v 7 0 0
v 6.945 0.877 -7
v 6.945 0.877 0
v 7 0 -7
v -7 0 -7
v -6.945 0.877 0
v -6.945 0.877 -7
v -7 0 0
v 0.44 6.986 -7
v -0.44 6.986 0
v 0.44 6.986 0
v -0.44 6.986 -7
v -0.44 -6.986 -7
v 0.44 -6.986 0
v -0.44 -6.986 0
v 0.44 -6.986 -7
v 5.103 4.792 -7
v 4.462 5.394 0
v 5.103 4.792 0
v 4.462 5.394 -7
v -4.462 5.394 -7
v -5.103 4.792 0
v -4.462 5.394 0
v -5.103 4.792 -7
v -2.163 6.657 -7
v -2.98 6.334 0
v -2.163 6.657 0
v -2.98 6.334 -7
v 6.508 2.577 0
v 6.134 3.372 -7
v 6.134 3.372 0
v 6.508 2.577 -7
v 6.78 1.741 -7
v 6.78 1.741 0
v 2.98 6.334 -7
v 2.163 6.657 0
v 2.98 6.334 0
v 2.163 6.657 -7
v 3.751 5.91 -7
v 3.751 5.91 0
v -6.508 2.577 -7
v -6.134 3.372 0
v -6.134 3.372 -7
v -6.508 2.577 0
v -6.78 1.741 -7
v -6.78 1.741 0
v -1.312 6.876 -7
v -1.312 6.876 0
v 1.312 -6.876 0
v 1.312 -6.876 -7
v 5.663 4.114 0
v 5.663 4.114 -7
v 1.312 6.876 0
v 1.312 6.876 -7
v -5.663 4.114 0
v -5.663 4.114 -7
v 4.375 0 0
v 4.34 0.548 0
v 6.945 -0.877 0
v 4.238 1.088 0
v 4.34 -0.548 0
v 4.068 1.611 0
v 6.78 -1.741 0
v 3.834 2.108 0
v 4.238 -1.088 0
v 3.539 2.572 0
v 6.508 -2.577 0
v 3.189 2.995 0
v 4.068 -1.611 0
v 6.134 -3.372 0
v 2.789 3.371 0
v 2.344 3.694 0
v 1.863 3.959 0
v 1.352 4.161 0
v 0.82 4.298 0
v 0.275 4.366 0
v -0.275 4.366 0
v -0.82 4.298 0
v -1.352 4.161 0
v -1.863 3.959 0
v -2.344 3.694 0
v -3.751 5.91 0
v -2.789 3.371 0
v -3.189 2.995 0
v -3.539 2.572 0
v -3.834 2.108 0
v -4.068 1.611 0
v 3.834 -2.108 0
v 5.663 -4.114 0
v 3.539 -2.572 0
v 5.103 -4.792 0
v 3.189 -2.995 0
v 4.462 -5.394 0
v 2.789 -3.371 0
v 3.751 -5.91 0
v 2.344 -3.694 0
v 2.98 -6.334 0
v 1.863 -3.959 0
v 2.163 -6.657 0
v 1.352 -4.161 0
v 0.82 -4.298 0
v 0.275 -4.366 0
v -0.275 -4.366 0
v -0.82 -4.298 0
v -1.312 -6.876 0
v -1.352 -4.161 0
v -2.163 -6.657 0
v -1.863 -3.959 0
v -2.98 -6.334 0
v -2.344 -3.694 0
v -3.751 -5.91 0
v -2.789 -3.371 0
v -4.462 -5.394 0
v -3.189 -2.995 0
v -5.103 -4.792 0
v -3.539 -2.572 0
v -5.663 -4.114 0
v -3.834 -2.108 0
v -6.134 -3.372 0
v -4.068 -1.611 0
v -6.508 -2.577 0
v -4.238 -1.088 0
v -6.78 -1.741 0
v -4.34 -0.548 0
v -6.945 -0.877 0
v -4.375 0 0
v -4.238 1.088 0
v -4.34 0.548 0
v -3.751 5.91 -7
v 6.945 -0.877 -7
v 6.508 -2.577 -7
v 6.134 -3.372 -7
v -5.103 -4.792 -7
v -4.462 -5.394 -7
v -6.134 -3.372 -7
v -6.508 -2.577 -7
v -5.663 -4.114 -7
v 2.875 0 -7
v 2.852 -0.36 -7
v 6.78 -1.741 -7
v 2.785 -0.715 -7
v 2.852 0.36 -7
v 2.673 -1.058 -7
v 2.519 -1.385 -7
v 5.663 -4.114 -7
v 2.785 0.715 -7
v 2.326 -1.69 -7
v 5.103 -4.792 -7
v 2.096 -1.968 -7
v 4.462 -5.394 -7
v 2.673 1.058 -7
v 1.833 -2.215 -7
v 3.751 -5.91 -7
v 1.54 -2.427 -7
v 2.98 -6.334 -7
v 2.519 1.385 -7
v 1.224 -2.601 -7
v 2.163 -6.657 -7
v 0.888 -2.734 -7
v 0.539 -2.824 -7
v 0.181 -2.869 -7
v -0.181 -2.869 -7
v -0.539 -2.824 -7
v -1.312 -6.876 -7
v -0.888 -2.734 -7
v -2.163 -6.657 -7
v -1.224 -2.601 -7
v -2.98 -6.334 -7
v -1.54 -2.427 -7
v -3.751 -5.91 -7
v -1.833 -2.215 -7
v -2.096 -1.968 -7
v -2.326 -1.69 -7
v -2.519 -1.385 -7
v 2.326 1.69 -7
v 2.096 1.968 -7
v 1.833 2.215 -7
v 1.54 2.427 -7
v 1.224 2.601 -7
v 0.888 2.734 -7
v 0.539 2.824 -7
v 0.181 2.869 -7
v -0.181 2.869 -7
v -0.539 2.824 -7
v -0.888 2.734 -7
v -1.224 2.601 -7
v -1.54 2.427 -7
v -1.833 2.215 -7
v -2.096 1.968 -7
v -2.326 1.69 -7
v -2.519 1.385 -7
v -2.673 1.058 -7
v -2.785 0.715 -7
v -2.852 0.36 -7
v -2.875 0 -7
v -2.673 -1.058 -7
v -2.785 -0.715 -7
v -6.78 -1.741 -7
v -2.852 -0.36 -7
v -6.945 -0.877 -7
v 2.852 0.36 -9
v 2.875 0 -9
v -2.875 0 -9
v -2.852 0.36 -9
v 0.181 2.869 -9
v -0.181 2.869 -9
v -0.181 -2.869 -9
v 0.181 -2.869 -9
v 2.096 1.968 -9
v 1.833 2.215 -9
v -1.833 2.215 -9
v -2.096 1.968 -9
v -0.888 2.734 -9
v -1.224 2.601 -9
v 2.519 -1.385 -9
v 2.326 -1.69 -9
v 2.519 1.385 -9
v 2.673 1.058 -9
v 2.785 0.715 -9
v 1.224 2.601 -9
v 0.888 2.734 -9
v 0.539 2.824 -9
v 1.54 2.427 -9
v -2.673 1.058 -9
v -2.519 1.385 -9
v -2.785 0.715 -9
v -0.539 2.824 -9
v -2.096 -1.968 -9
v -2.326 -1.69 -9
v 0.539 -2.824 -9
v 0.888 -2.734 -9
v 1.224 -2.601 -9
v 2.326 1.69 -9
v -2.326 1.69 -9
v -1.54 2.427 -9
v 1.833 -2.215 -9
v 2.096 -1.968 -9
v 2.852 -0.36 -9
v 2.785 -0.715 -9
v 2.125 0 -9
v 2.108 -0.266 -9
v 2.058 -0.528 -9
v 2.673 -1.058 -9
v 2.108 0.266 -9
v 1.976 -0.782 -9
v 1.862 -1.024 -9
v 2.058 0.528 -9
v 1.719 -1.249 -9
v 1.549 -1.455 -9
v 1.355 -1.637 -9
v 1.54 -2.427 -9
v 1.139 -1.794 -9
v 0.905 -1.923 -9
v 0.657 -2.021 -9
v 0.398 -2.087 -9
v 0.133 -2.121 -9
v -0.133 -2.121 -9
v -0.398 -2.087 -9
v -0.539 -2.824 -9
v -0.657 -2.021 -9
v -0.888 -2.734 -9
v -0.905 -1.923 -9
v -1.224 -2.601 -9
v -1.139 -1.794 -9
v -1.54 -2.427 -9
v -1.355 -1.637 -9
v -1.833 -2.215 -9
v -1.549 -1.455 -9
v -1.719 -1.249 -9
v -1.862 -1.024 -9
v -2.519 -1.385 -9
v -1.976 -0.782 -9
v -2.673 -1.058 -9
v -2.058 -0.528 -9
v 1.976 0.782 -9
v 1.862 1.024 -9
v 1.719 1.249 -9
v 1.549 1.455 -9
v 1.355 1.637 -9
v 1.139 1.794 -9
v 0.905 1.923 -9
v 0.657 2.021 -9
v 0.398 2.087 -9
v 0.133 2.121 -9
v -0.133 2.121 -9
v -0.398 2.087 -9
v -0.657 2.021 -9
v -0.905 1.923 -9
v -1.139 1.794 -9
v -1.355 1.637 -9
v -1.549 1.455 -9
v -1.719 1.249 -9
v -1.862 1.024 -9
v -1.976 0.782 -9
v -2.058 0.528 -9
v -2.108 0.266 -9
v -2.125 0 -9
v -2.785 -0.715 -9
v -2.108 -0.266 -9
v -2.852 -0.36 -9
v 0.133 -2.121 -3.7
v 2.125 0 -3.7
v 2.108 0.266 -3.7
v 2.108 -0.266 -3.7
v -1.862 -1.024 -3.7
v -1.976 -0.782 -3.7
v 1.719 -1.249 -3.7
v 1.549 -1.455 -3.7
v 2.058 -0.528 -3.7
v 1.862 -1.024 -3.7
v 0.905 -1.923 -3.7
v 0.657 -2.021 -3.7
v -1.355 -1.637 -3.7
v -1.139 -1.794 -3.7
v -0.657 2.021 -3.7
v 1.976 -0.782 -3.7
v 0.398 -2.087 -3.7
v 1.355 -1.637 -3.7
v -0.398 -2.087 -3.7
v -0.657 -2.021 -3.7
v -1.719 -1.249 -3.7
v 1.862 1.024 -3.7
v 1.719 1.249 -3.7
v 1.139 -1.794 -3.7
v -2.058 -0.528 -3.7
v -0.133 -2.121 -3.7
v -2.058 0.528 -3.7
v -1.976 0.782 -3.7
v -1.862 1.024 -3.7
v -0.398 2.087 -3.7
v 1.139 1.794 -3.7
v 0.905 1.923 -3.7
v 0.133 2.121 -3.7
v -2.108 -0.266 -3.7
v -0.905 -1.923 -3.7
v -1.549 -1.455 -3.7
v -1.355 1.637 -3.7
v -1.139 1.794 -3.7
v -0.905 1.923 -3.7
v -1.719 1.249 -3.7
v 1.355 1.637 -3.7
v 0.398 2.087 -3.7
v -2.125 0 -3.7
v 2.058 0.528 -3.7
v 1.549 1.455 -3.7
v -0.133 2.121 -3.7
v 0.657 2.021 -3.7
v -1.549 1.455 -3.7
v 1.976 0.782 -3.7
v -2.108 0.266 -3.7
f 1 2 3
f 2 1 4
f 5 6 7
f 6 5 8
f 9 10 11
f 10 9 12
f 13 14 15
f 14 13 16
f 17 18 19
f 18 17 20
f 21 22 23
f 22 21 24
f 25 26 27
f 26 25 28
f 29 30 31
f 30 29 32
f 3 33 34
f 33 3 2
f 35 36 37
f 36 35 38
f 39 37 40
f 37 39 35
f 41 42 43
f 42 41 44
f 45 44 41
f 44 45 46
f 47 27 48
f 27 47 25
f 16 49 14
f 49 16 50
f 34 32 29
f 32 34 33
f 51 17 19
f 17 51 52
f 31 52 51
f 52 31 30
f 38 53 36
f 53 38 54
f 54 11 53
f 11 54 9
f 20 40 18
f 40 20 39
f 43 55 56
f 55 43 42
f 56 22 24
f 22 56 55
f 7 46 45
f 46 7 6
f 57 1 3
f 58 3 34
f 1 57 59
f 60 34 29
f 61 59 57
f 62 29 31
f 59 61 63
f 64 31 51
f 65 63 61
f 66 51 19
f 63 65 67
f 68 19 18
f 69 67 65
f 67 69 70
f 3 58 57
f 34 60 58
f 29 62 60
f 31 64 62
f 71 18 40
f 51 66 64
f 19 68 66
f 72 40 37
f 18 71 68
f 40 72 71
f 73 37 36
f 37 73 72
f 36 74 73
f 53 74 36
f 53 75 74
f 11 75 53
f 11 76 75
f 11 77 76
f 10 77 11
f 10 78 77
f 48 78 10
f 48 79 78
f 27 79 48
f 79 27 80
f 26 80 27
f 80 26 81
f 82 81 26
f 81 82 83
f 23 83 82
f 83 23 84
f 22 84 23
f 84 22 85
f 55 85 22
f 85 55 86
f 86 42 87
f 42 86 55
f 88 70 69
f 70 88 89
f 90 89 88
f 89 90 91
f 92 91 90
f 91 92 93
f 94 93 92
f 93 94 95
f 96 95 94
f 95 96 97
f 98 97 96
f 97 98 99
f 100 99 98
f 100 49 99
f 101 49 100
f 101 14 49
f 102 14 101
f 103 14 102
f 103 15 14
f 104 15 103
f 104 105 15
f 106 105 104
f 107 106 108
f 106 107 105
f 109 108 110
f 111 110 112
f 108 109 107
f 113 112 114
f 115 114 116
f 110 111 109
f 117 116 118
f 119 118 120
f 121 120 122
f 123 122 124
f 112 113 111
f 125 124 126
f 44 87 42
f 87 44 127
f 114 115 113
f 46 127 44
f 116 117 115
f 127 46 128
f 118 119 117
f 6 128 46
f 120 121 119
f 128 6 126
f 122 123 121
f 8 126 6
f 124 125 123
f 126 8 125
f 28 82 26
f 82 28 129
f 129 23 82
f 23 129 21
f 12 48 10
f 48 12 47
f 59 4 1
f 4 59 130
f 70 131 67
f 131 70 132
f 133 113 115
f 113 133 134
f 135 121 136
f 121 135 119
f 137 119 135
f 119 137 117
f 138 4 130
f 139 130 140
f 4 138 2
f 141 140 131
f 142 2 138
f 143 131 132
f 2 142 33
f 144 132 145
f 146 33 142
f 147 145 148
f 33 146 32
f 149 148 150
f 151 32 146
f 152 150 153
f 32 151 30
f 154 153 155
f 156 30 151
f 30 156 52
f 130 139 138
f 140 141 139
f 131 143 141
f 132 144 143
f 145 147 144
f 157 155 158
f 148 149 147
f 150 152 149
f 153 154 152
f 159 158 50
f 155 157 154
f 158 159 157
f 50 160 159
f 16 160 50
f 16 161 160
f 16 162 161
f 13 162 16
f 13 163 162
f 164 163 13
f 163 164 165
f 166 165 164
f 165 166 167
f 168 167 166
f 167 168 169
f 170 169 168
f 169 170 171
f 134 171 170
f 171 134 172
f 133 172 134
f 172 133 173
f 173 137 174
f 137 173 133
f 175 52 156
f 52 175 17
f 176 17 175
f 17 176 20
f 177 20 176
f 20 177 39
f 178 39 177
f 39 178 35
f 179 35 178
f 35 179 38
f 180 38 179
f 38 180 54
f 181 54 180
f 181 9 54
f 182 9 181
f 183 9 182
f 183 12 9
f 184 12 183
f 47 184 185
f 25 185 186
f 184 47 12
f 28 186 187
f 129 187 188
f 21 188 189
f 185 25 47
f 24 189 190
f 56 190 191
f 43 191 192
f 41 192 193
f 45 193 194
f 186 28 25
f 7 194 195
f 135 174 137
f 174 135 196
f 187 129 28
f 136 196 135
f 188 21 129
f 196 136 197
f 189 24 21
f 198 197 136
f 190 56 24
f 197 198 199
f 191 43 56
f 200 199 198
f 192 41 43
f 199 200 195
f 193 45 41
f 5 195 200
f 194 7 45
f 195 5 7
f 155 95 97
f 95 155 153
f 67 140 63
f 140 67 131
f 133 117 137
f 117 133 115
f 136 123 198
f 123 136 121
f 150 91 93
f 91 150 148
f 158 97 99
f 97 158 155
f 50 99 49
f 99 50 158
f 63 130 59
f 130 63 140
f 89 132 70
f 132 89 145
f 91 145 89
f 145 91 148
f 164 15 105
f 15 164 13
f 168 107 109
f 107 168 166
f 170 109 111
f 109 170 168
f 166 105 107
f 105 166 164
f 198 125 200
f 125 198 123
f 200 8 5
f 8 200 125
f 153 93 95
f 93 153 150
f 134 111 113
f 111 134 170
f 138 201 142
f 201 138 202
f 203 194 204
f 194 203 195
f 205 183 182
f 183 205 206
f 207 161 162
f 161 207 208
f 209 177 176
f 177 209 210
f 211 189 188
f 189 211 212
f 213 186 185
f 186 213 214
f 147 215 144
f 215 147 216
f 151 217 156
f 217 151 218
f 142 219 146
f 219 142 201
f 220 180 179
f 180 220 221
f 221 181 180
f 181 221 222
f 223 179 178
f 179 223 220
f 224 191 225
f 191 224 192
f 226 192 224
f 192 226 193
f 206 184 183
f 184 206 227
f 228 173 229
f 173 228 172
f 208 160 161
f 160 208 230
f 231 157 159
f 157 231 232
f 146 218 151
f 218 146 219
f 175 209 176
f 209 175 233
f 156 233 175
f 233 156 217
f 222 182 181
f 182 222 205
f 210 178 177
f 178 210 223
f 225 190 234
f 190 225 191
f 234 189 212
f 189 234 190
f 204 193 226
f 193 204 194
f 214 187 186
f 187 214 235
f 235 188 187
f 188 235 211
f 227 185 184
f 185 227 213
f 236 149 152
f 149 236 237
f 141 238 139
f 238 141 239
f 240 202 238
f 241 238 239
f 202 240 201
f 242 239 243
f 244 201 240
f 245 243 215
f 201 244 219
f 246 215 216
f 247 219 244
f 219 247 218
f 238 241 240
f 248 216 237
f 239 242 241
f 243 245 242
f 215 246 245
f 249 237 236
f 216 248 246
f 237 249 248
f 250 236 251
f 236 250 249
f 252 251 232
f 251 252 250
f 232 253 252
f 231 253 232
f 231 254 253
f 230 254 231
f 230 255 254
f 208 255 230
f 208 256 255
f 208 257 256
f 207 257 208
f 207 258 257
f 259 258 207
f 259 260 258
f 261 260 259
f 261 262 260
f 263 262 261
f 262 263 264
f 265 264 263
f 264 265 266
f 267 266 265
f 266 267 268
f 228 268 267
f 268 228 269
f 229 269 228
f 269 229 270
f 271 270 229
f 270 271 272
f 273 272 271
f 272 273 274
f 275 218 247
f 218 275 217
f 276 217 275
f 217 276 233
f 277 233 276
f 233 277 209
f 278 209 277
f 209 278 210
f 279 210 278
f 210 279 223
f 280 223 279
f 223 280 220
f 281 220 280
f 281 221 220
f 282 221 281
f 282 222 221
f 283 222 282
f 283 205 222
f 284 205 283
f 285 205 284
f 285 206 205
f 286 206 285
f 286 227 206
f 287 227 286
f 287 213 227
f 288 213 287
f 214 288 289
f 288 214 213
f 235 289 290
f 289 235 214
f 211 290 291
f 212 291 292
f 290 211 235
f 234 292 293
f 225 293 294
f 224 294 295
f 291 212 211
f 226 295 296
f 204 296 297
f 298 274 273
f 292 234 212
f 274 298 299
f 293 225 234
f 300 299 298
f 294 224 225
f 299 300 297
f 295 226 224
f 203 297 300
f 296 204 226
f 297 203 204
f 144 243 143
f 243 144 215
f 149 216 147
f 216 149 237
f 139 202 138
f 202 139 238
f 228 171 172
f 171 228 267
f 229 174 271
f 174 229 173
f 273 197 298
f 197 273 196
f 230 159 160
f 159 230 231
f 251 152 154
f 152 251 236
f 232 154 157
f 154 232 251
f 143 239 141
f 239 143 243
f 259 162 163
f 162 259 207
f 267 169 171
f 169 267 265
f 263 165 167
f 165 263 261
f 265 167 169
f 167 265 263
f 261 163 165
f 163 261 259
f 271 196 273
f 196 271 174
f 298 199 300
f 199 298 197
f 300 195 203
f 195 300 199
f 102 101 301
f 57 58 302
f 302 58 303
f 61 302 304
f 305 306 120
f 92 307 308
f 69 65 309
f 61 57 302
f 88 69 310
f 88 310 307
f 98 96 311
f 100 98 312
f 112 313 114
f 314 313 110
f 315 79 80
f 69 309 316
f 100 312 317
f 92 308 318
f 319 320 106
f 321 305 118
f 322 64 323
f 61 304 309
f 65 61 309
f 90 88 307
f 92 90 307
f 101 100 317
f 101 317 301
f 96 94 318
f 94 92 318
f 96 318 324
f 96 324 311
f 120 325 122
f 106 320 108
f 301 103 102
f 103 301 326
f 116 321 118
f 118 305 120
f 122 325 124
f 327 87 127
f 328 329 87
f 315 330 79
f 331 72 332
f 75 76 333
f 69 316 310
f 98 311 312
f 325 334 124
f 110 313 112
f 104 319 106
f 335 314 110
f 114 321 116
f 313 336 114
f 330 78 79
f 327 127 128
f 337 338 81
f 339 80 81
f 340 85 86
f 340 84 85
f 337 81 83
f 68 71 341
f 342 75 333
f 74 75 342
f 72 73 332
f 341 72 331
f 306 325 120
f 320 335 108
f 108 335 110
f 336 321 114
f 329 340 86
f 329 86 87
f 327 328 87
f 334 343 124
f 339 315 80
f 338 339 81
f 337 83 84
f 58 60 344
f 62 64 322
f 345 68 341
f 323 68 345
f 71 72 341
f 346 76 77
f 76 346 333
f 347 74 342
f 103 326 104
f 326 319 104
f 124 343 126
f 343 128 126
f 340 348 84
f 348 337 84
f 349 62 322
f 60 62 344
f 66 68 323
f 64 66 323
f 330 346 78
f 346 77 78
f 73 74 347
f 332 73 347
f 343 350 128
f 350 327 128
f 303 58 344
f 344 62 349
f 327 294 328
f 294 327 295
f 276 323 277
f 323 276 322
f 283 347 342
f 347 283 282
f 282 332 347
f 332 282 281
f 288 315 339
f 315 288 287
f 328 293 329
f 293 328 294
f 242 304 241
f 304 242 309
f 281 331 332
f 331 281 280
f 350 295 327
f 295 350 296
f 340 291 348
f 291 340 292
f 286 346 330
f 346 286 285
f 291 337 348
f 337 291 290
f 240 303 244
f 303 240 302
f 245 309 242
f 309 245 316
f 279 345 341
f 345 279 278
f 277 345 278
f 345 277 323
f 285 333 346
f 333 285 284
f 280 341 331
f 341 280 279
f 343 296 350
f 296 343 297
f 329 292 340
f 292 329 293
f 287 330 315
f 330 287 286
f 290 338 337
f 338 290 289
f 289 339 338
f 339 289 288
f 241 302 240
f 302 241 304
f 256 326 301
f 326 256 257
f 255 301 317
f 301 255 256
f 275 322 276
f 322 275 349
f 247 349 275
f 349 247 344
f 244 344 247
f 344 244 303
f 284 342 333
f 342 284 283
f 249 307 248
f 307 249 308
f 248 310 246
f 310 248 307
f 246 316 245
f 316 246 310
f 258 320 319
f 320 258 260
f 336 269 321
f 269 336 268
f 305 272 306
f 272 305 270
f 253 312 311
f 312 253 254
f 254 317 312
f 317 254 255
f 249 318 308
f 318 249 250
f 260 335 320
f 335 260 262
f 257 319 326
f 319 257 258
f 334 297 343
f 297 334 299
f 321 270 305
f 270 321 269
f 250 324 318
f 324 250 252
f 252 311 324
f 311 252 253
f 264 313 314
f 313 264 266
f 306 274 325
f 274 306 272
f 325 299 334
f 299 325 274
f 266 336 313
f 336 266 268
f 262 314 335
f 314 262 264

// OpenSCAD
$fn = 50;


difference() {
	union() {
		translate(v = [0, 0, -7.0000000000]) {
			cylinder(h = 7, r = 7.0000000000);
		}
		translate(v = [0, 0, -9.0000000000]) {
			cylinder(h = 9, r = 2.8750000000);
		}
	}
	union() {
		translate(v = [0, 0, 0]) {
			rotate(a = [0, 0, 0]) {
				difference() {
					union() {
						#translate(v = [0, 0, -9.0000000000]) {
							cylinder(h = 9, r = 2.0000000000);
						}
						#translate(v = [0, 0, -3.7000000000]) {
							cylinder(h = 3.7000000000, r1 = 2.1250000000, r2 = 4.3750000000);
						}
						#translate(v = [0, 0, -9.0000000000]) {
							cylinder(h = 9, r = 2.1250000000);
						}
						#translate(v = [0, 0, -9.0000000000]) {
							cylinder(h = 9, r = 2.0000000000);
						}
					}
					union();
				}
			}
		}
	}
}
